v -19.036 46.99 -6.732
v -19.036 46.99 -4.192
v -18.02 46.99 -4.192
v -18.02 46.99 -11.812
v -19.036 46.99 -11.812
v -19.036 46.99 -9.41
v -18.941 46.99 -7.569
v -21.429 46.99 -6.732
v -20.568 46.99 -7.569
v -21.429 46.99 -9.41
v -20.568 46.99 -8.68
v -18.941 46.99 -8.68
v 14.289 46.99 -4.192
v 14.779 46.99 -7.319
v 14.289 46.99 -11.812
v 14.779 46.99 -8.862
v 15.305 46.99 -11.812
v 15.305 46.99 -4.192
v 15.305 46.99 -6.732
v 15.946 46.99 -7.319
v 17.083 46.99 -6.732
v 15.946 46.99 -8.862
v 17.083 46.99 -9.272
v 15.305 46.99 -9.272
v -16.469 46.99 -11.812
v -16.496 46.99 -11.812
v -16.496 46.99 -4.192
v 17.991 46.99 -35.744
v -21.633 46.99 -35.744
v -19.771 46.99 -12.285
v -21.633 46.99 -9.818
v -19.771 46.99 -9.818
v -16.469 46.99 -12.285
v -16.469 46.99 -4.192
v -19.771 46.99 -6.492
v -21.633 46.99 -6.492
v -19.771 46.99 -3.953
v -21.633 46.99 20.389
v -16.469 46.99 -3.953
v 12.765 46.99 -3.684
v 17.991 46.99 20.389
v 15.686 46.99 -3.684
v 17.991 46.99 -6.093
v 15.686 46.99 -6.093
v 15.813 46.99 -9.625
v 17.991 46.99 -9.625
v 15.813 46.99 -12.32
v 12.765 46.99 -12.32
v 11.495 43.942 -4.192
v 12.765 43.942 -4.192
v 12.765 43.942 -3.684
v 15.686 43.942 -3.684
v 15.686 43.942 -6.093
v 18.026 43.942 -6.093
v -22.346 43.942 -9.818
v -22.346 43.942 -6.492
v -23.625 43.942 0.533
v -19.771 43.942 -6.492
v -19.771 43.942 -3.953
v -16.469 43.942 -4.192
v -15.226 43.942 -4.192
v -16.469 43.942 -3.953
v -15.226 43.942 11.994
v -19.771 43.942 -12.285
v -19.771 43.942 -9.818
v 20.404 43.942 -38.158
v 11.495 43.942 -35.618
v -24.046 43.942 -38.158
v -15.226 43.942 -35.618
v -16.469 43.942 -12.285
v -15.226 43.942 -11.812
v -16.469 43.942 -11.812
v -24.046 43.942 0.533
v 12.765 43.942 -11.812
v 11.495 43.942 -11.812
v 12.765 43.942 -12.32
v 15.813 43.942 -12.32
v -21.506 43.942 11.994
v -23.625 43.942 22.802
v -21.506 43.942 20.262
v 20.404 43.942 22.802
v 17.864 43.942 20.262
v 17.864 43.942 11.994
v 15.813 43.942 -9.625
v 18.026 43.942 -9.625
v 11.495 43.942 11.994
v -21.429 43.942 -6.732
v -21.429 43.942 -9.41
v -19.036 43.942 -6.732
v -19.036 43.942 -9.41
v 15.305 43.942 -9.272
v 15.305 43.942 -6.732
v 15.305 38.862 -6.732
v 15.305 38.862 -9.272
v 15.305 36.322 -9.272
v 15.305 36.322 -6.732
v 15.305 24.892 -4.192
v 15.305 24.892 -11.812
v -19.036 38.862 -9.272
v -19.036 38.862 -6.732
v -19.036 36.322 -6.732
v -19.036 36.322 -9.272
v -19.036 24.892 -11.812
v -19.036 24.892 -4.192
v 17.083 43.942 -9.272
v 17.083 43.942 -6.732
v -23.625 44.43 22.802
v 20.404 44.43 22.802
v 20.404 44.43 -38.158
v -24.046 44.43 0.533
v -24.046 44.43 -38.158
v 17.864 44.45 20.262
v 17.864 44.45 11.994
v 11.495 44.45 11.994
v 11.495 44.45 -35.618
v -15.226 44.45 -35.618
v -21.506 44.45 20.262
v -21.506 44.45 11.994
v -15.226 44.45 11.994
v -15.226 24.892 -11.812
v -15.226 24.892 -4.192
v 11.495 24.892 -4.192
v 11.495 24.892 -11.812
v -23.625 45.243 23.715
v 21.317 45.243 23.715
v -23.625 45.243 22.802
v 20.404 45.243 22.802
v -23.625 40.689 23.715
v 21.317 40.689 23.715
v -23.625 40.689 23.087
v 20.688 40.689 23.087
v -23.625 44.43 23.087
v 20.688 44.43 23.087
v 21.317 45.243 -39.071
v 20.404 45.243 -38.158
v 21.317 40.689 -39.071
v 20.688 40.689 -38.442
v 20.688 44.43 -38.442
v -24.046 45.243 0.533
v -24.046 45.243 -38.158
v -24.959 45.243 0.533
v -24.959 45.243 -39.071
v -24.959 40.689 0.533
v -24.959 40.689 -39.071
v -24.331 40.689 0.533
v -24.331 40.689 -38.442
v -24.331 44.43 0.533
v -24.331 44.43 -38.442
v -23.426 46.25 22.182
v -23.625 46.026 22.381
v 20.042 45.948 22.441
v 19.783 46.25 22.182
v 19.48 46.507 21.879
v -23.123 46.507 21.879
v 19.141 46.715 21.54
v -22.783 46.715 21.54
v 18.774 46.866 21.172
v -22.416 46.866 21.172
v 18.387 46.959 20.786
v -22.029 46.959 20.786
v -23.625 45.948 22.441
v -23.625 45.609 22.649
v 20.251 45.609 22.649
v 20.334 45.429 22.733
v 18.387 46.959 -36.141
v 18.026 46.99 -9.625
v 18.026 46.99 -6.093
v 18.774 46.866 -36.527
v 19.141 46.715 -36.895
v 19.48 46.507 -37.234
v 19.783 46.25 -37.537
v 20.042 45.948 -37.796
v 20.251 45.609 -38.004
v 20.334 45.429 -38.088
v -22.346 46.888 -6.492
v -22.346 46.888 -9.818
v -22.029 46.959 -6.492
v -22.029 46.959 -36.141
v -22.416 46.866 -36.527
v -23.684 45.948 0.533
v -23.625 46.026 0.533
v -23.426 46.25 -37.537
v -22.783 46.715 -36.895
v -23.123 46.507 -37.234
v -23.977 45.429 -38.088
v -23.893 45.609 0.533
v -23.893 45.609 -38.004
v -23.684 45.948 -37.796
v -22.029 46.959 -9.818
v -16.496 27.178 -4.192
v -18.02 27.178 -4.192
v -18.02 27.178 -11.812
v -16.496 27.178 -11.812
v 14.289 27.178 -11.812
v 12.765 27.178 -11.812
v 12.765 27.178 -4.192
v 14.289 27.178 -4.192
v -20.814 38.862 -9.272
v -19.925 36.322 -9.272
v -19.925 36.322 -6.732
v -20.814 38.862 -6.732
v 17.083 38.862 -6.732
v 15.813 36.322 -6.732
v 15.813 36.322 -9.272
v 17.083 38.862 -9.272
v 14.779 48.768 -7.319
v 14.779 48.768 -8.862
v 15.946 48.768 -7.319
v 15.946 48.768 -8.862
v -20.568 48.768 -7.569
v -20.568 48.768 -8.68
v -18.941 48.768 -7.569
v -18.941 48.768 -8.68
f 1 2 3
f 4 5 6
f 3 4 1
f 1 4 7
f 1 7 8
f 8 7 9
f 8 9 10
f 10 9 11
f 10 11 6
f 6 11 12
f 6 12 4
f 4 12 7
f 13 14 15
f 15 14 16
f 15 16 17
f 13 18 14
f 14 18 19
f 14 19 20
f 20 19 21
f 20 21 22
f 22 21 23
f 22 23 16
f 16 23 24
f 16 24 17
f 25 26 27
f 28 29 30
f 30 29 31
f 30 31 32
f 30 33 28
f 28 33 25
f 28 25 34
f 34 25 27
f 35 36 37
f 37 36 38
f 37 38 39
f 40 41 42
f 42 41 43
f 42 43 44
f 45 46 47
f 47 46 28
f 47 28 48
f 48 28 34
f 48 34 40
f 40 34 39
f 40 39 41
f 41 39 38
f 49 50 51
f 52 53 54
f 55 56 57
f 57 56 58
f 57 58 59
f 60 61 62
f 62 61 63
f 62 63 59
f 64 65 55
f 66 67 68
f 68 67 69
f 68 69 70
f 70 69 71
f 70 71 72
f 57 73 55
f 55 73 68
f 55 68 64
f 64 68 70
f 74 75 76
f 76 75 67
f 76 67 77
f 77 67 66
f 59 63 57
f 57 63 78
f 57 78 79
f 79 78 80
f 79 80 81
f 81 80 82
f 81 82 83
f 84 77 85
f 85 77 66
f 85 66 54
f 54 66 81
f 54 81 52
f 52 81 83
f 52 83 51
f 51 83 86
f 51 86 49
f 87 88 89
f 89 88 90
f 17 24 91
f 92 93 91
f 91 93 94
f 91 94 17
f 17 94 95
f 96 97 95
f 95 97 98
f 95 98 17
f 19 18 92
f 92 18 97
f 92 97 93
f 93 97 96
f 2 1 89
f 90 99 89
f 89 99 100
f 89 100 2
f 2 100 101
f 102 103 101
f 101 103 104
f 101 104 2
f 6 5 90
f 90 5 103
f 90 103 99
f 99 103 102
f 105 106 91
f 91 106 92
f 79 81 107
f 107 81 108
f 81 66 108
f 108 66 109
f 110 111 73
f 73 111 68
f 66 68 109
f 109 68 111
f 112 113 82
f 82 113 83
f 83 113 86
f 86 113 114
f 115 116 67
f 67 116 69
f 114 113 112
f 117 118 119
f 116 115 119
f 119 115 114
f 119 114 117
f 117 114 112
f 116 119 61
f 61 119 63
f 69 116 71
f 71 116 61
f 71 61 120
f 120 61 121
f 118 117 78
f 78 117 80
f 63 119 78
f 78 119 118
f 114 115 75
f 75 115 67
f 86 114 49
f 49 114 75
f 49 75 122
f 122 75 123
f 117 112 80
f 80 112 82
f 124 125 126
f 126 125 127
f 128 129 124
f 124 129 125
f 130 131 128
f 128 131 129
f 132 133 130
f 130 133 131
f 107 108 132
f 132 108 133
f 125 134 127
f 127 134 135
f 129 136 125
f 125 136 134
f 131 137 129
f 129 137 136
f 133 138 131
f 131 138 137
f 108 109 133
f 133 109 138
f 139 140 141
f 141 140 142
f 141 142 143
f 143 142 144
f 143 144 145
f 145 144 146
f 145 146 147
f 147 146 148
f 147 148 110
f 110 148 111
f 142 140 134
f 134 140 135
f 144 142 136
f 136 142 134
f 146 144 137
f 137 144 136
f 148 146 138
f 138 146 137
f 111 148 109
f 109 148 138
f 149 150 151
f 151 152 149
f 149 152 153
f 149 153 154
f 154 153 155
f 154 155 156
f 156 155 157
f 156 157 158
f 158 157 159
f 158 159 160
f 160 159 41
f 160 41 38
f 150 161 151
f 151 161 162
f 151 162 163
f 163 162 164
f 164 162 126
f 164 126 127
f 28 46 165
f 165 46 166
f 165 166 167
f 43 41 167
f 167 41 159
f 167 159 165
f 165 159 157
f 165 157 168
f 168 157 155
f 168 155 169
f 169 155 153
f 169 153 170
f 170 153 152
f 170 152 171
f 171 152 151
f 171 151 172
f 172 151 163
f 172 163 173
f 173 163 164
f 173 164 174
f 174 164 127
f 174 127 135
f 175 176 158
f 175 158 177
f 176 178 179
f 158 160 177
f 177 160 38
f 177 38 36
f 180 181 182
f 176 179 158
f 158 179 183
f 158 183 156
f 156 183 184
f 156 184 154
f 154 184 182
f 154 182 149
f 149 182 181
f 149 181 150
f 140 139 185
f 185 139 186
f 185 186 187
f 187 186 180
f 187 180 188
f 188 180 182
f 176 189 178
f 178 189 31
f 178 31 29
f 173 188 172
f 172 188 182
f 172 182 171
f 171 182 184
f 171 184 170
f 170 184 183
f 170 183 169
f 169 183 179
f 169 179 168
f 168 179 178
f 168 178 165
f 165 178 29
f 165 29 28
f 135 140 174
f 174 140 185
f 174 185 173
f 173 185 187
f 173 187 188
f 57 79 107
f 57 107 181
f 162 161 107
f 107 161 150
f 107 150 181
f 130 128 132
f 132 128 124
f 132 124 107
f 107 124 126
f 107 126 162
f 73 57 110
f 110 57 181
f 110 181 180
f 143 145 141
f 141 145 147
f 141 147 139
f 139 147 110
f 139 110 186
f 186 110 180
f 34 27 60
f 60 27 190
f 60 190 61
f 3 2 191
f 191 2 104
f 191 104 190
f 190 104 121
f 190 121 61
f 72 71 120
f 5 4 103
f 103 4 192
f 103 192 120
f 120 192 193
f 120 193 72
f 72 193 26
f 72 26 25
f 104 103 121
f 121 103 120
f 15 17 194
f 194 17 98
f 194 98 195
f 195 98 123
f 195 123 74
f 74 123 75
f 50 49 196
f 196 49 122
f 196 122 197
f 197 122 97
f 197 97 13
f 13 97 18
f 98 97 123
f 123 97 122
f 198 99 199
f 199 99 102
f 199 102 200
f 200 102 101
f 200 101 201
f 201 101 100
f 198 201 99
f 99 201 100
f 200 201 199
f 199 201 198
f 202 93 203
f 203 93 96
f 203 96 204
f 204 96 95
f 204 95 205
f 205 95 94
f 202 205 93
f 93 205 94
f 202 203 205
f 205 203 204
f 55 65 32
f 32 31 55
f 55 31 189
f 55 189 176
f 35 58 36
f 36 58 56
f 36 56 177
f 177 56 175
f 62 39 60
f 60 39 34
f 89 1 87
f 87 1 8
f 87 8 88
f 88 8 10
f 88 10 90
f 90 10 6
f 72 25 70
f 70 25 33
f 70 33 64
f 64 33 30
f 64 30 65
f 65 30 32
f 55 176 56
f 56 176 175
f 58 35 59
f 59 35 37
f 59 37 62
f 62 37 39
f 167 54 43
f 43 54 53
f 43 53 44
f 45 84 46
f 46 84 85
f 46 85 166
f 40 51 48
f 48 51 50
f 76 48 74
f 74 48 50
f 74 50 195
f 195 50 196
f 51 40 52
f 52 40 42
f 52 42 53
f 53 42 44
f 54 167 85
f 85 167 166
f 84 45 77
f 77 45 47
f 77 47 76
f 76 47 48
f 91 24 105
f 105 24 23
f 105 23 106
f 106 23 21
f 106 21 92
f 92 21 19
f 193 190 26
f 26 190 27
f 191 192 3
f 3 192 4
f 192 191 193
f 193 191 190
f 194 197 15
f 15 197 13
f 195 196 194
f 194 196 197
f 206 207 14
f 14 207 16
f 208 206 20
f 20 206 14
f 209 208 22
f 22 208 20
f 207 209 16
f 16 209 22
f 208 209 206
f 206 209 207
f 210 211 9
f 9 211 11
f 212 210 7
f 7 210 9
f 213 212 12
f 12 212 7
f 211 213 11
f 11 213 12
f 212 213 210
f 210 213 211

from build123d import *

# Parameters (mm, degrees)
STOCK_TOP_1_START                              = 44.45
STOCK_TOP_1_OUTLINE_W                          = 44.45
STOCK_TOP_1_OUTLINE_H                          = 60.96
STOCK_TOP_1_DEPTH                              = 2.54
STOCK_TOP_1_START_2                            = 43.942
STOCK_TOP_1_2_OUTLINE_W                        = 44.45
STOCK_TOP_1_2_OUTLINE_H                        = 60.96
STOCK_TOP_1_2_DEPTH                            = 0.508
OUTSIDE_FILLET_R                               = 2.54
CUT_A_BIT_OF_THE_ENCLOSURE_REACH               = 48.789
SKETCH1_W                                      = 1.334667882
SKETCH1_H                                      = 23.182275167
SKETCH2_W                                      = 3.81
SKETCH2_H                                      = 7.62
BATTERY_LID_1_DEPTH                            = 19.05
SKETCH3_W                                      = 2.54
SKETCH3_H                                      = 2.54
BATTERY_LID_HOLE_1_DEPTH                       = 1.778
CUT_EXTRUDE1_REACH                             = 64.264
SKETCH5_W                                      = 2.54
SKETCH5_H                                      = 2.54
BATTERY_LID_HOLE_2_DEPTH                       = 1.778
CUT_EXTRUDE2_REACH                             = 64.264
DETACH_LID_ATTACHEMENTS_REACH                  = 52.124
SKETCH9_W                                      = 1.524
SKETCH9_H                                      = 7.62
REMOVE_THE_INNARDS_OF_THE_LID_ATTACHMENT_DEPTH = 19.812
SKETCH11_W                                     = 1.167614697
SKETCH11_H                                     = 1.542617542
SKETCH11_W_2                                   = 1.626626063
SKETCH11_H_2                                   = 1.11023807
BOSS_EXTRUDE4_DEPTH                            = 1.778


# Read off the part's stored shape, not the designer's step: Stock-Top-1
with BuildPart() as part:
    # Stock-Top-1 outline → Stock-Top-1 (new body)
    with BuildSketch(Plane(origin=(0, 0, 0), x_dir=(1, 0, 0), z_dir=(0, 1, 0)).offset(STOCK_TOP_1_START)):
        with Locations((-1.821227893, 7.677651333)):
            Rectangle(STOCK_TOP_1_OUTLINE_W, STOCK_TOP_1_OUTLINE_H)
    extrude(amount=STOCK_TOP_1_DEPTH)

    # Stock-Top-1 2 outline → Stock-Top-1 2 (add)
    with BuildSketch(Plane(origin=(0, 0, 0), x_dir=(1, 0, 0), z_dir=(0, 1, 0)).offset(STOCK_TOP_1_START_2)):
        with Locations((-1.821227893, 7.677651333)):
            Rectangle(STOCK_TOP_1_2_OUTLINE_W, STOCK_TOP_1_2_OUTLINE_H)
        Polygon((11.494723241, -11.994444065), (17.863772107, -11.994444065), (17.863772107, -20.262348667), (-21.506227893, -20.262348667), (-21.506227893, -11.994444065), (-15.225663022, -11.994444065), (-15.225663022, 35.617651333), (11.494723241, 35.617651333), align=None, mode=Mode.SUBTRACT)
    extrude(amount=STOCK_TOP_1_2_DEPTH)

    # Enclosure: sweep along a path in Outline of Enclosure
    with BuildLine(Plane.XZ.offset(-43.942)) as enclosure_path:
        Line((-24.046227893, 22.802348667), (-24.046227893, -38.157651333))
        Line((-24.046227893, -38.157651333), (20.403772107, -38.157651333))
        Line((20.403772107, -38.157651333), (20.403772107, 22.802348667))
        Line((20.403772107, 22.802348667), (-24.046227893, 22.802348667))
    # Shape of Enclosure → Enclosure (sweep)
    with BuildSketch(Plane(origin=(20.403772107, 0, 0), x_dir=(0, 0, -1), z_dir=(1, 0, 0))):
        Polygon((38.157651333, 44.429907846), (38.442131333, 44.429907846), (38.442131333, 40.688820131), (39.070756728, 40.688820131), (39.070756728, 45.242521161), (38.157651333, 45.242521161), align=None)
    sweep(path=enclosure_path.line, transition=Transition.RIGHT)

    # Outside Fillet
    # the kernel refuses this fillet: 2.54 mm, written as the material it takes off along each edge
    with BuildSketch(Plane(origin=(20.403772107, 46.99, 28.835336218), x_dir=(2.8274047493178717e-10, -1.0, 0), z_dir=(0, 0, -1))) as outside_fillet_piece_1:
        with BuildLine():
            CenterArc((2.539999999, 2.413195021), OUTSIDE_FILLET_R, 180.000000016, 71.819221529)
            Line((-1e-09, 2.41319502), (-0.050800001, 2.41319502))
            Line((-0.050800001, 2.41319502), (-0.0508, 0))
            Line((-0.0508, 0), (0, -0.0508))
            ThreePointArc((0, -0.0508), (0.873739419, -0.0508), (1.731628415, -0.0482639))
            Line((1.731628415, -0.0482639), (1.747478839, 0))
        make_face()
    extrude(amount=73.025975102, mode=Mode.SUBTRACT)
    with BuildSketch(Plane(origin=(-24.046227893, 46.99, -44.190638886), x_dir=(2.827486071359672e-10, -1.0, 0), z_dir=(0, 0, 1))) as outside_fillet_piece_2:
        with BuildLine():
            CenterArc((2.540000001, 2.413195021), OUTSIDE_FILLET_R, 179.999999984, 71.819221529)
            Line((1e-09, 2.413195021), (-0.050799999, 2.413195021))
            Line((-0.050799999, 2.413195021), (-0.0508, 0))
            Line((-0.0508, 0), (0, -0.0508))
            ThreePointArc((0, -0.0508), (0.873739419, -0.0508), (1.731628415, -0.0482639))
            Line((1.731628415, -0.0482639), (1.747478839, 0))
        make_face()
    extrude(amount=73.025975107, mode=Mode.SUBTRACT)
    with BuildSketch(Plane(origin=(-30.079215446, 46.99, 22.802348667), x_dir=(0, -1.0, -1.349945893887387e-10), z_dir=(1, 0, 0))) as outside_fillet_piece_3:
        with BuildLine():
            CenterArc((2.54, 2.413195021), OUTSIDE_FILLET_R, 179.999999992, 71.819221529)
            Line((0, 2.413195021), (-0.0508, 2.413195021))
            Line((-0.0508, 2.413195021), (-0.0508, 0))
            Line((-0.0508, 0), (0, -0.0508))
            ThreePointArc((0, -0.0508), (0.873739419, -0.0508), (1.731628415, -0.0482639))
            Line((1.731628415, -0.0482639), (1.747478839, 0))
        make_face()
    extrude(amount=56.515975105, mode=Mode.SUBTRACT)
    with BuildSketch(Plane(origin=(26.436759659, 46.99, -38.157651333), x_dir=(0, 0, 1), z_dir=(-1, 0, 0))) as outside_fillet_piece_4:
        with BuildLine():
            CenterArc((2.413195021, -2.54), OUTSIDE_FILLET_R, 90, 71.819221529)
            Line((0, -1.747478839), (-0.048263901, -1.731628415))
            ThreePointArc((-0.048263901, -1.731628415), (-0.0508, -0.873739419), (-0.0508, 0))
            Line((-0.0508, 0), (0, 0.0508))
            Line((0, 0.0508), (2.413195021, 0.0508))
            Line((2.413195021, 0.0508), (2.413195021, 0))
        make_face()
    extrude(amount=56.515975103, mode=Mode.SUBTRACT)

    # Sketch1 → Cut a bit of the enclosure (cut, up to next)
    with BuildSketch(Plane.XZ.offset(-40.688820131), mode=Mode.PRIVATE) as cut_a_bit_of_the_enclosure_sk1:
        with Locations((-24.291999346, 12.124316479)):
            Rectangle(SKETCH1_W, SKETCH1_H)
    cut_a_bit_of_the_enclosure_tool1 = extrude(cut_a_bit_of_the_enclosure_sk1.sketch, amount=-CUT_A_BIT_OF_THE_ENCLOSURE_REACH, mode=Mode.PRIVATE) & part.part
    add(cut_a_bit_of_the_enclosure_tool1.solids().sort_by_distance((-24.291999, 40.68882, 12.124316))[0], mode=Mode.SUBTRACT)

    # Sketch2 → Battery lid 1 (add)
    with BuildSketch(Plane.XZ.offset(-43.942)):
        with Locations((-17.130663022, -8.001603634)):
            Rectangle(SKETCH2_W, SKETCH2_H)
        with Locations((13.399723241, -8.001603634)):
            Rectangle(SKETCH2_W, SKETCH2_H)
    extrude(amount=BATTERY_LID_1_DEPTH)

    # Sketch3 → Battery lid hole 1 (add)
    with BuildSketch(Plane.ZY.offset(19.035663022)):
        with Locations((-8.001603634, 37.592)):
            Rectangle(SKETCH3_W, SKETCH3_H)
    extrude(amount=BATTERY_LID_HOLE_1_DEPTH)

    # Sketch4 → Cut-Extrude1 (cut, up to next)
    with BuildSketch(Plane.XY.offset(-6.731603634), mode=Mode.PRIVATE) as cut_extrude1_sk1:
        Polygon((-20.813663022, 38.862), (-20.813663022, 36.322), (-19.924663022, 36.322), align=None)
    cut_extrude1_tool1 = extrude(cut_extrude1_sk1.sketch, amount=-CUT_EXTRUDE1_REACH, mode=Mode.PRIVATE) & part.part
    add(cut_extrude1_tool1.solids().sort_by_distance((-20.51733, 37.168667, -6.731604))[0], mode=Mode.SUBTRACT)

    # Sketch5 → Battery lid hole 2 (add)
    with BuildSketch(Plane(origin=(15.304723241, 0, 0), x_dir=(0, 0, -1), z_dir=(1, 0, 0))):
        with Locations((8.001603634, 37.592)):
            Rectangle(SKETCH5_W, SKETCH5_H)
    extrude(amount=BATTERY_LID_HOLE_2_DEPTH)

    # Sketch6 → Cut-Extrude2 (cut, up to next)
    with BuildSketch(Plane.XY.offset(-6.731603634), mode=Mode.PRIVATE) as cut_extrude2_sk1:
        Polygon((17.082723241, 38.862), (17.082723241, 36.322), (15.812723241, 36.322), align=None)
    cut_extrude2_tool1 = extrude(cut_extrude2_sk1.sketch, amount=-CUT_EXTRUDE2_REACH, mode=Mode.PRIVATE) & part.part
    add(cut_extrude2_tool1.solids().sort_by_distance((16.65939, 37.168667, -6.731604))[0], mode=Mode.SUBTRACT)

    # Sketch7 → Detach Lid attachements (cut, up to next)
    with BuildSketch(Plane.XZ.offset(-43.942), mode=Mode.PRIVATE) as detach_lid_attachements_sk1:
        Polygon((-16.469097924, -4.191603634), (-19.035663022, -4.191603634), (-19.035663022, -6.731603634), (-21.429165636, -6.731603634), (-21.429165636, -9.410456582), (-19.035663022, -9.410456582), (-19.035663022, -11.811603634), (-16.469097924, -11.811603634), (-16.469097924, -12.285051826), (-19.771097924, -12.285051826), (-19.771097924, -9.817750336), (-22.345673393, -9.817750336), (-22.345673393, -6.870456582), (-22.345673393, -6.492257022), (-19.771097924, -6.492257022), (-19.771097924, -3.953439546), (-16.469097924, -3.953439546), align=None)
    detach_lid_attachements_tool1 = extrude(detach_lid_attachements_sk1.sketch, amount=-DETACH_LID_ATTACHEMENTS_REACH, mode=Mode.PRIVATE) & part.part
    # Sketch7 → Detach Lid attachements (cut, up to next)
    with BuildSketch(Plane.XZ.offset(-43.942), mode=Mode.PRIVATE) as detach_lid_attachements_sk2:
        Polygon((12.764723241, -4.191603634), (15.304723241, -4.191603634), (15.304723241, -6.731603634), (17.082723241, -6.731603634), (17.082723241, -9.271603634), (15.304723241, -9.271603634), (15.304723241, -11.811603634), (12.764723241, -11.811603634), (12.764723241, -12.319603634), (15.812723241, -12.319603634), (15.812723241, -9.624506021), (18.02600878, -9.624506021), (18.02600878, -6.09262067), (15.685723241, -6.09262067), (15.685723241, -3.683603634), (12.764723241, -3.683603634), align=None)
    detach_lid_attachements_tool2 = extrude(detach_lid_attachements_sk2.sketch, amount=-DETACH_LID_ATTACHEMENTS_REACH, mode=Mode.PRIVATE) & part.part
    add(detach_lid_attachements_tool1.solids().sort_by_distance((-17.75238, 43.942, -4.089648))[0], mode=Mode.SUBTRACT)
    add(detach_lid_attachements_tool2.solids().sort_by_distance((14.034723, 43.942, -4.090479))[0], mode=Mode.SUBTRACT)

    # Sketch9 → Remove the innards of the lid attachment (cut)
    with BuildSketch(Plane(origin=(0, 46.99, 0), x_dir=(1, 0, 0), z_dir=(0, 1, 0))):
        with Locations((-17.257663022, 8.001603634)):
            Rectangle(SKETCH9_W, SKETCH9_H)
        with Locations((13.526723241, 8.001603634)):
            Rectangle(SKETCH9_W, SKETCH9_H)
    extrude(amount=-REMOVE_THE_INNARDS_OF_THE_LID_ATTACHMENT_DEPTH, mode=Mode.SUBTRACT)

    # Sketch11 → Boss-Extrude4 (add)
    with BuildSketch(Plane(origin=(0, 46.99, 0), x_dir=(1, 0, 0), z_dir=(0, 1, 0))):
        with Locations((15.362507718, 8.090206817)):
            Rectangle(SKETCH11_W, SKETCH11_H)
        with Locations((-19.754773261, 8.124447803)):
            Rectangle(SKETCH11_W_2, SKETCH11_H_2)
    extrude(amount=BOSS_EXTRUDE4_DEPTH)


solid = part.part
